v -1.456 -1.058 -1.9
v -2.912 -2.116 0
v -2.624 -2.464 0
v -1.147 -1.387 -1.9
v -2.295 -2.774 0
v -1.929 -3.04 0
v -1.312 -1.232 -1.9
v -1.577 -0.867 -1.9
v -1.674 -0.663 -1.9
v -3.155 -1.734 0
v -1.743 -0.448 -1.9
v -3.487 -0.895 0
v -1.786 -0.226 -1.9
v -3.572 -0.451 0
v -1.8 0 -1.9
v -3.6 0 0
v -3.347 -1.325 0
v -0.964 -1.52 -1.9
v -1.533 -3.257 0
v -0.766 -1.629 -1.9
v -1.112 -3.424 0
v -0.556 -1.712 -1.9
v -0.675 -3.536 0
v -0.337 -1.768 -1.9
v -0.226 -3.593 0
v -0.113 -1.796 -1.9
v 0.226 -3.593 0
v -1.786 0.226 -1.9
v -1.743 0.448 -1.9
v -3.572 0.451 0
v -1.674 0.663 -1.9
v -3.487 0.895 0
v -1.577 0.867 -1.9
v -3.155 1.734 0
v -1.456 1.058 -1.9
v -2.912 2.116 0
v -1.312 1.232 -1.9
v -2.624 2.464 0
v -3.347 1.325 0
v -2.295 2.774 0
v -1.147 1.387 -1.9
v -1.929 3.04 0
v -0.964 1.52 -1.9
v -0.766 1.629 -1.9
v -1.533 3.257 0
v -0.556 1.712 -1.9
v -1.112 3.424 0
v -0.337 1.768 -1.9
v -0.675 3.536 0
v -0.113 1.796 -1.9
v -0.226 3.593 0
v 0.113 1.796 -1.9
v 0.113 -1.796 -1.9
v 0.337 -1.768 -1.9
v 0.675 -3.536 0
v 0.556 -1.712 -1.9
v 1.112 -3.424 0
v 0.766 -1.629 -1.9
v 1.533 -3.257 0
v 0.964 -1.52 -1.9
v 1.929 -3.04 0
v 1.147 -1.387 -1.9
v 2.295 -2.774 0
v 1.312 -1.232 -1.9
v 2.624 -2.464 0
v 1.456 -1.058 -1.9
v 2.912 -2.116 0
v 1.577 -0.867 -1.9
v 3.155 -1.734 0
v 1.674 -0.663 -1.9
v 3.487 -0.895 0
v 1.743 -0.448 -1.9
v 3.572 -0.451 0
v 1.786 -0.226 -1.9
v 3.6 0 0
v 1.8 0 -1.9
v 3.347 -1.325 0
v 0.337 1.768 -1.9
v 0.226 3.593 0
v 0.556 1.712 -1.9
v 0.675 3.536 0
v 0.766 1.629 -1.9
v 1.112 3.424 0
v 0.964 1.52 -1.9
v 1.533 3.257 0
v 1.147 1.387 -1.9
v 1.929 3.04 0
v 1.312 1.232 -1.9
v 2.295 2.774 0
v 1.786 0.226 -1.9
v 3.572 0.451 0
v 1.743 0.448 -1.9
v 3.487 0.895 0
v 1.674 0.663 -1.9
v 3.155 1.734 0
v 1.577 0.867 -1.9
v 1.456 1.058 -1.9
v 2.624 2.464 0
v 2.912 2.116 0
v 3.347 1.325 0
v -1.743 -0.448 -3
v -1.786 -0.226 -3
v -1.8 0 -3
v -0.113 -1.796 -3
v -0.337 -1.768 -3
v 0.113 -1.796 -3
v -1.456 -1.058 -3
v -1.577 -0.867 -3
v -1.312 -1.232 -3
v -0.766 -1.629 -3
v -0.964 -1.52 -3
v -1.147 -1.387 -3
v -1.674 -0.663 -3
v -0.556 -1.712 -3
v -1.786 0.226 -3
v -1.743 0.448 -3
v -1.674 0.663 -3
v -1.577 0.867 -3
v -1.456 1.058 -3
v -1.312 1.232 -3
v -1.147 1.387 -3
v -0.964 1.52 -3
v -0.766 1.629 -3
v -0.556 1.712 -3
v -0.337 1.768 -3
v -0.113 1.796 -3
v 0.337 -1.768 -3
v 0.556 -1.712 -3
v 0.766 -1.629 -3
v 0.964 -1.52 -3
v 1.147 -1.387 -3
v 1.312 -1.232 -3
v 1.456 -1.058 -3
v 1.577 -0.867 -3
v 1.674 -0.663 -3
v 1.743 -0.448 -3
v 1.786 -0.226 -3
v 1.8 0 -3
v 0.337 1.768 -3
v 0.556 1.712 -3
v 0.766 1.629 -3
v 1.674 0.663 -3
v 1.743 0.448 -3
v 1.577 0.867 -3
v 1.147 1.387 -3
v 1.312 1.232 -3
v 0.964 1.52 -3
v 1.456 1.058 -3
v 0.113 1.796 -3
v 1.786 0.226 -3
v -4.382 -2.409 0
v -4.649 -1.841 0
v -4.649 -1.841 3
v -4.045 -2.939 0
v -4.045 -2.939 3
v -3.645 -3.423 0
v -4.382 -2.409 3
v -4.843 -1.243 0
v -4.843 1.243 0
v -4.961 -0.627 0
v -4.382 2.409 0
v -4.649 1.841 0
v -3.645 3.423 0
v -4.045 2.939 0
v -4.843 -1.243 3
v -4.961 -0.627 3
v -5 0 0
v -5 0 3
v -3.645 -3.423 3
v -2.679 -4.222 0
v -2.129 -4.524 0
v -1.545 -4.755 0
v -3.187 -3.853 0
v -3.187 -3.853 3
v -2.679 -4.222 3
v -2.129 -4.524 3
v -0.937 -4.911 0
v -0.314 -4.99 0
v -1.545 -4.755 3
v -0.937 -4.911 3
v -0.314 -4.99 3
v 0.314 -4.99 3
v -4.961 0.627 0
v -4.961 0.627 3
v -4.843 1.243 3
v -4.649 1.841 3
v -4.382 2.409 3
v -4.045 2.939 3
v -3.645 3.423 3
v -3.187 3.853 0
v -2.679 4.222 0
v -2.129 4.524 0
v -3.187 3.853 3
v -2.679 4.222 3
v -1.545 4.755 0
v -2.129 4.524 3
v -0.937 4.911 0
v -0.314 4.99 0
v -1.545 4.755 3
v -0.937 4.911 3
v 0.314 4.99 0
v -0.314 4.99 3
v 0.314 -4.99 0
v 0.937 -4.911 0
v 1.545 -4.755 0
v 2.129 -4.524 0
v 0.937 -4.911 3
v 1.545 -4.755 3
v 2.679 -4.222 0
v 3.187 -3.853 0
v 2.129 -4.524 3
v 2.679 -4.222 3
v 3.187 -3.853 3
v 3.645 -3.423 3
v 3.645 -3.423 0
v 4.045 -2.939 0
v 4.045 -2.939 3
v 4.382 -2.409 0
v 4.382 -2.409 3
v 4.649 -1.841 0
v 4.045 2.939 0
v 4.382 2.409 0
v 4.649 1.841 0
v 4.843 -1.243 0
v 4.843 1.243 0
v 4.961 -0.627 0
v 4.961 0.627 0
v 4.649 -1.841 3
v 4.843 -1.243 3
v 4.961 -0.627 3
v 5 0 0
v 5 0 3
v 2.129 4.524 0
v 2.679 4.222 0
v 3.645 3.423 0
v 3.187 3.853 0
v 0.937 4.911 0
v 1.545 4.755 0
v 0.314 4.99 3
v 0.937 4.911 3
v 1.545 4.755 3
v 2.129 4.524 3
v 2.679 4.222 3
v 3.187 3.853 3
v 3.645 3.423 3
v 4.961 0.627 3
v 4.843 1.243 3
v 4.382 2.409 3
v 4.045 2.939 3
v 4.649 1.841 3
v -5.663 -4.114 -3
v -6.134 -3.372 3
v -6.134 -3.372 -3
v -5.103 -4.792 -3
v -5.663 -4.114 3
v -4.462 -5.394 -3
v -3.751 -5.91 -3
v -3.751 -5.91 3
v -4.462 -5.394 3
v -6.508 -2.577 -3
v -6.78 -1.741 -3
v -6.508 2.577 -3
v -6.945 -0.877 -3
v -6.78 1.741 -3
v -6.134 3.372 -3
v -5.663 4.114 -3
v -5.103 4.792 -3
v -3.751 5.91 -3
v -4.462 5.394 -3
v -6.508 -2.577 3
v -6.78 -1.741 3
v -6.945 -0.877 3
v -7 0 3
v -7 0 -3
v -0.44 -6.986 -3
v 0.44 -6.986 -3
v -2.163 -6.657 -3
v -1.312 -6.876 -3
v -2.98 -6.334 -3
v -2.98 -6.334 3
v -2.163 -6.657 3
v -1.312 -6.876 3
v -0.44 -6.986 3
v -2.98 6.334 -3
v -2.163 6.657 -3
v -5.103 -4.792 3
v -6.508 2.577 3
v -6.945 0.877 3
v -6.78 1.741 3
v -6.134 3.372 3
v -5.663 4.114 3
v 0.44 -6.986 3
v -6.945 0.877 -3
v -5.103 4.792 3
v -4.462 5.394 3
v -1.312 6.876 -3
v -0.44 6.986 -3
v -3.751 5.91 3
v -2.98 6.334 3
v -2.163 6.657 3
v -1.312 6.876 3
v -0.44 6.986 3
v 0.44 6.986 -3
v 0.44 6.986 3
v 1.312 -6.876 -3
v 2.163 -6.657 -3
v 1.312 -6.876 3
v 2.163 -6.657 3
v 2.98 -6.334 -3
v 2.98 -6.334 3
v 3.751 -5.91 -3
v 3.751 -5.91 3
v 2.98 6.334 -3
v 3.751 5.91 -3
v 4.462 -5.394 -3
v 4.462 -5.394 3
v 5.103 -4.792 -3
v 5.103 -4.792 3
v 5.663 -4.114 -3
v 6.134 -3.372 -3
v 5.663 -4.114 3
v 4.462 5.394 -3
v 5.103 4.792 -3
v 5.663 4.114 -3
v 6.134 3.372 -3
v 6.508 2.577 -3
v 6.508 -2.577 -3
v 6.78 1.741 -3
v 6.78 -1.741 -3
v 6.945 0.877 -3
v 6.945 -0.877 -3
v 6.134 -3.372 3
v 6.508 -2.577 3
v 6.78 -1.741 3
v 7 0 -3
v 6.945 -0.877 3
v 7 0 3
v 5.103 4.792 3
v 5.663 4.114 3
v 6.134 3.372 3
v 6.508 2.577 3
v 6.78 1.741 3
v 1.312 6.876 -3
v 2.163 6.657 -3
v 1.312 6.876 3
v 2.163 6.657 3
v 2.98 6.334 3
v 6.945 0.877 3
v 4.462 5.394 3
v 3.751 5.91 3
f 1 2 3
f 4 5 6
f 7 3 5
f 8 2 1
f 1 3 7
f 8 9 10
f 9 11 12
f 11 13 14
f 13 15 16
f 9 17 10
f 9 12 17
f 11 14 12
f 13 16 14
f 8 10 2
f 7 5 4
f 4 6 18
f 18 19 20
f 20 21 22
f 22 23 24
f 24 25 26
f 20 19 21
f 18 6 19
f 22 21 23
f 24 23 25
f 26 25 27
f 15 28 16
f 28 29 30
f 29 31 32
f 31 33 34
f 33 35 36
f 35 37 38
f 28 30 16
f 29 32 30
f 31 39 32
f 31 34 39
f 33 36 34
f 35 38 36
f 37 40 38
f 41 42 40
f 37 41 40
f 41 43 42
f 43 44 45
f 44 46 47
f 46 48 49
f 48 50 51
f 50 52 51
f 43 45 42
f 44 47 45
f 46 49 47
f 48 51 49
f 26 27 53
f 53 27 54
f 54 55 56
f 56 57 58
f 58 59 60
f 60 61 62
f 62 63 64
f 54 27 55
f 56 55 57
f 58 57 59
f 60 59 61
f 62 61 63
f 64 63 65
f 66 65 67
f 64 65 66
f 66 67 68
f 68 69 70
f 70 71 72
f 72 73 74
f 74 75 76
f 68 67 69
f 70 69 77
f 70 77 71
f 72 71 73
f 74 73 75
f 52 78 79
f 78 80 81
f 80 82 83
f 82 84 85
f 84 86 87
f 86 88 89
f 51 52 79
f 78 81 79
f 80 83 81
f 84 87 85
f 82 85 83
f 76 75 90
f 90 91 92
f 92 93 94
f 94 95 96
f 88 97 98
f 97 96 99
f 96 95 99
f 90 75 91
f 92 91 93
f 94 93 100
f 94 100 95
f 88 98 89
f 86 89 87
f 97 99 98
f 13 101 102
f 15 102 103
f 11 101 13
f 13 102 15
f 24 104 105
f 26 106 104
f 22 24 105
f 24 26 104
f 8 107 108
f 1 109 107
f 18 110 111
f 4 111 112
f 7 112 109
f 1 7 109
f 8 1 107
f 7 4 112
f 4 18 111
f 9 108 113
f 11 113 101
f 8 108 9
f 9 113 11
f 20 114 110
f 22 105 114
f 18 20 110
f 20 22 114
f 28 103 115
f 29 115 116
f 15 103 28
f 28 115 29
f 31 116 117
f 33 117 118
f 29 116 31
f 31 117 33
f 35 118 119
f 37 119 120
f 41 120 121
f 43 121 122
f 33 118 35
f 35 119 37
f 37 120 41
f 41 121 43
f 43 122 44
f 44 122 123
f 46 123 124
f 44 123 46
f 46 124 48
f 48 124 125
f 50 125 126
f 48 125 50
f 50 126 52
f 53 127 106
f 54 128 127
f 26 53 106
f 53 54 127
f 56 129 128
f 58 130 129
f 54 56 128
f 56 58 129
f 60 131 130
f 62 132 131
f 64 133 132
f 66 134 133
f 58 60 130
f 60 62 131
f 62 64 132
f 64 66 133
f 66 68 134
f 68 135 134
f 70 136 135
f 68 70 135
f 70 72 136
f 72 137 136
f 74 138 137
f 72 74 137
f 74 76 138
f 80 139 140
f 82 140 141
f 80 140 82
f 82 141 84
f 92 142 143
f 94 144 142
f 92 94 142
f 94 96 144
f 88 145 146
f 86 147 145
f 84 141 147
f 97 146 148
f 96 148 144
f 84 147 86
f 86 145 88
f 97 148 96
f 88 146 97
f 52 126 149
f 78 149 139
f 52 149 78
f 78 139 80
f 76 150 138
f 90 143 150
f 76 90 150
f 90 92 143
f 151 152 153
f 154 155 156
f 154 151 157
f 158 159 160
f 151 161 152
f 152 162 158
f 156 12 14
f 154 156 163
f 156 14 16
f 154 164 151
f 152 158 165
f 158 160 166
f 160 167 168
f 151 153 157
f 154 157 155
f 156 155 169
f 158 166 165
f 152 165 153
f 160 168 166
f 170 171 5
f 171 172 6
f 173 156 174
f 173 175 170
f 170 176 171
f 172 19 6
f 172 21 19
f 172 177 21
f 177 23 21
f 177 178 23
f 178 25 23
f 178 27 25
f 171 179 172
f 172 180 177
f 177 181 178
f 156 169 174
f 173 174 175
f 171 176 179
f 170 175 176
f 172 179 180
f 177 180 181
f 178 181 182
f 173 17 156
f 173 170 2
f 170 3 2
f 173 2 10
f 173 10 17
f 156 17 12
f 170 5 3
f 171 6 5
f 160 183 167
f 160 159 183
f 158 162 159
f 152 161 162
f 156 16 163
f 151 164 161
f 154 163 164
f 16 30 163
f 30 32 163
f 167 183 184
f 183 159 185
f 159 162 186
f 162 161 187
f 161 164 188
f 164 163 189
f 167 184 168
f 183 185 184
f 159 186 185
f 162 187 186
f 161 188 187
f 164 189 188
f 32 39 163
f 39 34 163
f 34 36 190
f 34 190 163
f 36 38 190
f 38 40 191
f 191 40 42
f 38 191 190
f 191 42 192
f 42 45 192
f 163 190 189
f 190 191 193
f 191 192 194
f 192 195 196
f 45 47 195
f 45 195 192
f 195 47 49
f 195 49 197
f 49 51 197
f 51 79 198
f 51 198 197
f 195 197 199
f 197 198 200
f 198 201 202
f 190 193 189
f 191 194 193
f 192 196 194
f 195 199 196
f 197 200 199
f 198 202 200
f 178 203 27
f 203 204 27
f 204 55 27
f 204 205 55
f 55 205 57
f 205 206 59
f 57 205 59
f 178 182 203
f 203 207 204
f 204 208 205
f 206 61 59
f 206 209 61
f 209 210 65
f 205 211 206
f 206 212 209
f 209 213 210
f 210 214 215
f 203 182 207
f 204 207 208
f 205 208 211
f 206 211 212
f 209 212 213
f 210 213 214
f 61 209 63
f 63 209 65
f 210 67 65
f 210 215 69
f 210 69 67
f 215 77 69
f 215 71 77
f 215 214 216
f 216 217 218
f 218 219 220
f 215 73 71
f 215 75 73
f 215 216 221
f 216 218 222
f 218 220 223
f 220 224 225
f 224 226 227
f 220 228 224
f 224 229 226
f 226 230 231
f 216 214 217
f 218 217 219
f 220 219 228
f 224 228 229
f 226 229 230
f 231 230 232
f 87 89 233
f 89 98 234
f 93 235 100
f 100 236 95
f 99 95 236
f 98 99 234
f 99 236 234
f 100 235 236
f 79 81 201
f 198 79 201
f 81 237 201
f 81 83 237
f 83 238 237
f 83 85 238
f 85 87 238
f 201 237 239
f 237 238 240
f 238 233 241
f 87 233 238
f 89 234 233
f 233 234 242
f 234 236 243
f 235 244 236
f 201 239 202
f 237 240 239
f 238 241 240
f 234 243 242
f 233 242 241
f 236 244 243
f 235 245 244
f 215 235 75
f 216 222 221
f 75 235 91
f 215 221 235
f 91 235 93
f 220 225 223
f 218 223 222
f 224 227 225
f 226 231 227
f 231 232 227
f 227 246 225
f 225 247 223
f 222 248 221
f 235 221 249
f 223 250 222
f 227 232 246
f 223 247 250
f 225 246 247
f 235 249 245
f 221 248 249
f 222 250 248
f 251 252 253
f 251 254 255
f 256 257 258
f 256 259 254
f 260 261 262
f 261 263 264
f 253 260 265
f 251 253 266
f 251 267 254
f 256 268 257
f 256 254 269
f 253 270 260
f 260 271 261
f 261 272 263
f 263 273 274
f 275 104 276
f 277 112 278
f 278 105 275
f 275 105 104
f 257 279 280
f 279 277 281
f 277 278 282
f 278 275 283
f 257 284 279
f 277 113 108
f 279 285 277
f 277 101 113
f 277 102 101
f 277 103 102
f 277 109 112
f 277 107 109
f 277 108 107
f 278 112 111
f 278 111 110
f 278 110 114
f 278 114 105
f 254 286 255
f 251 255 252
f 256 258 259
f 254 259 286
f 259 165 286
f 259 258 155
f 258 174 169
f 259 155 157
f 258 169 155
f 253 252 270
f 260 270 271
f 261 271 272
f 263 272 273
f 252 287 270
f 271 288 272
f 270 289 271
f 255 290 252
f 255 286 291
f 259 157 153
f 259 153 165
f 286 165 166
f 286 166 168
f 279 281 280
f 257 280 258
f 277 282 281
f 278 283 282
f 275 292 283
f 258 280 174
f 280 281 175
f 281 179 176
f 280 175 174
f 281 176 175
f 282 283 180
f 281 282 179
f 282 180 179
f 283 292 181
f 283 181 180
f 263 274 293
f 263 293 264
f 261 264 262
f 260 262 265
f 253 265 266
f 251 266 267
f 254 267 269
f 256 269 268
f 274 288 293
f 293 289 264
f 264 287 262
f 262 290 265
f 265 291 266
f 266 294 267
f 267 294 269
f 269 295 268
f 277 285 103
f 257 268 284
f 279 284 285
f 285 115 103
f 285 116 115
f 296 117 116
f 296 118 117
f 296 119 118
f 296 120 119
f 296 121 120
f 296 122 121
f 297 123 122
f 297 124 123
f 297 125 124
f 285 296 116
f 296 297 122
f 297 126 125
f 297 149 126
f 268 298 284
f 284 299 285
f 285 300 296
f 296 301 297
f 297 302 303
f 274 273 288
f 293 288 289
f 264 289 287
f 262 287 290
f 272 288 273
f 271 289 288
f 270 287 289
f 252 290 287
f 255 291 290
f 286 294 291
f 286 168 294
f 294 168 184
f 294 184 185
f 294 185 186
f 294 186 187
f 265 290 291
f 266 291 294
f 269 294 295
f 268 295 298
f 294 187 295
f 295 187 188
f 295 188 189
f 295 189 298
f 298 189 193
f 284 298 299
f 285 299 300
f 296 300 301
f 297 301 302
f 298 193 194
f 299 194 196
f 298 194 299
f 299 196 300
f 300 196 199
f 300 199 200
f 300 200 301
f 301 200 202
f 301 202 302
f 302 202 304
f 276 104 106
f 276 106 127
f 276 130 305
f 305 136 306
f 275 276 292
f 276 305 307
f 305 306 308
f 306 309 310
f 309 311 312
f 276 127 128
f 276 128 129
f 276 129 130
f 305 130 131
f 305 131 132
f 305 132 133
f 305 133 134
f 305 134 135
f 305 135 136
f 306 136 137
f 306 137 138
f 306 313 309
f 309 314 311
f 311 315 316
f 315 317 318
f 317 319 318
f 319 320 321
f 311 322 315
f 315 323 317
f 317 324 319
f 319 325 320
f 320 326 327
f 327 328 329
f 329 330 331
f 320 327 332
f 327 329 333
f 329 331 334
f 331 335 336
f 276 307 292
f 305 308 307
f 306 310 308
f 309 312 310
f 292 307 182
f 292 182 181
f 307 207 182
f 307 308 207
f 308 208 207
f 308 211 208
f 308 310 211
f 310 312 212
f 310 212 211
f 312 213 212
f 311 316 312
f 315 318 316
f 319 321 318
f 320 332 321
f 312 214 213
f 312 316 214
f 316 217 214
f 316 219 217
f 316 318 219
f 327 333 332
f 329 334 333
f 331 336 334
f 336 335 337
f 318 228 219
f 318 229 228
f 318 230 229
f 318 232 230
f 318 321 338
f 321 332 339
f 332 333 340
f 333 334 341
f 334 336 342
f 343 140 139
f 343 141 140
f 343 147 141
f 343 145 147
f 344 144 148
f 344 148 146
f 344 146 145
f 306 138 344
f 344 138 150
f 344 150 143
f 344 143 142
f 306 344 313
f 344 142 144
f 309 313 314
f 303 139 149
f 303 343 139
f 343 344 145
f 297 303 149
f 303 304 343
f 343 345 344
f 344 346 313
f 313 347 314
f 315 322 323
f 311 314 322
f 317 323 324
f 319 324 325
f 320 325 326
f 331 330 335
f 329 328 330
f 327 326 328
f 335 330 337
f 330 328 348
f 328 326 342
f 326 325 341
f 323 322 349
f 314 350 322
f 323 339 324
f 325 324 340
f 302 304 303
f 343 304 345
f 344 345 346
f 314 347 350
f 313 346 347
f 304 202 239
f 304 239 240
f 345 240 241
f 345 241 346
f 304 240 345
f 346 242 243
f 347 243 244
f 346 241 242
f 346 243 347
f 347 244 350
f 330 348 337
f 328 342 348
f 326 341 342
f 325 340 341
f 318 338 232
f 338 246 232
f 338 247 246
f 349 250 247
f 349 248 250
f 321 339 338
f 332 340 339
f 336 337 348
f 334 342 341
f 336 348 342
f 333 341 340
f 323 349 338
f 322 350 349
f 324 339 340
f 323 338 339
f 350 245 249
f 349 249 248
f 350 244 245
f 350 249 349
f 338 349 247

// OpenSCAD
$fn = 50;


difference() {
	union() {
		translate(v = [0, 0, -3.0000000000]) {
			cylinder(h = 6, r = 7.0000000000);
		}
	}
	union() {
		translate(v = [0, 0, 0]) {
			rotate(a = [0, 0, 0]) {
				difference() {
					union() {
						translate(v = [0, 0, -6.0000000000]) {
							cylinder(h = 6, r = 1.5000000000);
						}
						translate(v = [0, 0, -1.9000000000]) {
							cylinder(h = 1.9000000000, r1 = 1.8000000000, r2 = 3.6000000000);
						}
						translate(v = [0, 0, -6.0000000000]) {
							cylinder(h = 6, r = 1.8000000000);
						}
						translate(v = [0, 0, -6.0000000000]) {
							cylinder(h = 6, r = 1.5000000000);
						}
					}
					union();
				}
			}
		}
		#cylinder(h = 3, r = 5.0000000000);
	}
}
